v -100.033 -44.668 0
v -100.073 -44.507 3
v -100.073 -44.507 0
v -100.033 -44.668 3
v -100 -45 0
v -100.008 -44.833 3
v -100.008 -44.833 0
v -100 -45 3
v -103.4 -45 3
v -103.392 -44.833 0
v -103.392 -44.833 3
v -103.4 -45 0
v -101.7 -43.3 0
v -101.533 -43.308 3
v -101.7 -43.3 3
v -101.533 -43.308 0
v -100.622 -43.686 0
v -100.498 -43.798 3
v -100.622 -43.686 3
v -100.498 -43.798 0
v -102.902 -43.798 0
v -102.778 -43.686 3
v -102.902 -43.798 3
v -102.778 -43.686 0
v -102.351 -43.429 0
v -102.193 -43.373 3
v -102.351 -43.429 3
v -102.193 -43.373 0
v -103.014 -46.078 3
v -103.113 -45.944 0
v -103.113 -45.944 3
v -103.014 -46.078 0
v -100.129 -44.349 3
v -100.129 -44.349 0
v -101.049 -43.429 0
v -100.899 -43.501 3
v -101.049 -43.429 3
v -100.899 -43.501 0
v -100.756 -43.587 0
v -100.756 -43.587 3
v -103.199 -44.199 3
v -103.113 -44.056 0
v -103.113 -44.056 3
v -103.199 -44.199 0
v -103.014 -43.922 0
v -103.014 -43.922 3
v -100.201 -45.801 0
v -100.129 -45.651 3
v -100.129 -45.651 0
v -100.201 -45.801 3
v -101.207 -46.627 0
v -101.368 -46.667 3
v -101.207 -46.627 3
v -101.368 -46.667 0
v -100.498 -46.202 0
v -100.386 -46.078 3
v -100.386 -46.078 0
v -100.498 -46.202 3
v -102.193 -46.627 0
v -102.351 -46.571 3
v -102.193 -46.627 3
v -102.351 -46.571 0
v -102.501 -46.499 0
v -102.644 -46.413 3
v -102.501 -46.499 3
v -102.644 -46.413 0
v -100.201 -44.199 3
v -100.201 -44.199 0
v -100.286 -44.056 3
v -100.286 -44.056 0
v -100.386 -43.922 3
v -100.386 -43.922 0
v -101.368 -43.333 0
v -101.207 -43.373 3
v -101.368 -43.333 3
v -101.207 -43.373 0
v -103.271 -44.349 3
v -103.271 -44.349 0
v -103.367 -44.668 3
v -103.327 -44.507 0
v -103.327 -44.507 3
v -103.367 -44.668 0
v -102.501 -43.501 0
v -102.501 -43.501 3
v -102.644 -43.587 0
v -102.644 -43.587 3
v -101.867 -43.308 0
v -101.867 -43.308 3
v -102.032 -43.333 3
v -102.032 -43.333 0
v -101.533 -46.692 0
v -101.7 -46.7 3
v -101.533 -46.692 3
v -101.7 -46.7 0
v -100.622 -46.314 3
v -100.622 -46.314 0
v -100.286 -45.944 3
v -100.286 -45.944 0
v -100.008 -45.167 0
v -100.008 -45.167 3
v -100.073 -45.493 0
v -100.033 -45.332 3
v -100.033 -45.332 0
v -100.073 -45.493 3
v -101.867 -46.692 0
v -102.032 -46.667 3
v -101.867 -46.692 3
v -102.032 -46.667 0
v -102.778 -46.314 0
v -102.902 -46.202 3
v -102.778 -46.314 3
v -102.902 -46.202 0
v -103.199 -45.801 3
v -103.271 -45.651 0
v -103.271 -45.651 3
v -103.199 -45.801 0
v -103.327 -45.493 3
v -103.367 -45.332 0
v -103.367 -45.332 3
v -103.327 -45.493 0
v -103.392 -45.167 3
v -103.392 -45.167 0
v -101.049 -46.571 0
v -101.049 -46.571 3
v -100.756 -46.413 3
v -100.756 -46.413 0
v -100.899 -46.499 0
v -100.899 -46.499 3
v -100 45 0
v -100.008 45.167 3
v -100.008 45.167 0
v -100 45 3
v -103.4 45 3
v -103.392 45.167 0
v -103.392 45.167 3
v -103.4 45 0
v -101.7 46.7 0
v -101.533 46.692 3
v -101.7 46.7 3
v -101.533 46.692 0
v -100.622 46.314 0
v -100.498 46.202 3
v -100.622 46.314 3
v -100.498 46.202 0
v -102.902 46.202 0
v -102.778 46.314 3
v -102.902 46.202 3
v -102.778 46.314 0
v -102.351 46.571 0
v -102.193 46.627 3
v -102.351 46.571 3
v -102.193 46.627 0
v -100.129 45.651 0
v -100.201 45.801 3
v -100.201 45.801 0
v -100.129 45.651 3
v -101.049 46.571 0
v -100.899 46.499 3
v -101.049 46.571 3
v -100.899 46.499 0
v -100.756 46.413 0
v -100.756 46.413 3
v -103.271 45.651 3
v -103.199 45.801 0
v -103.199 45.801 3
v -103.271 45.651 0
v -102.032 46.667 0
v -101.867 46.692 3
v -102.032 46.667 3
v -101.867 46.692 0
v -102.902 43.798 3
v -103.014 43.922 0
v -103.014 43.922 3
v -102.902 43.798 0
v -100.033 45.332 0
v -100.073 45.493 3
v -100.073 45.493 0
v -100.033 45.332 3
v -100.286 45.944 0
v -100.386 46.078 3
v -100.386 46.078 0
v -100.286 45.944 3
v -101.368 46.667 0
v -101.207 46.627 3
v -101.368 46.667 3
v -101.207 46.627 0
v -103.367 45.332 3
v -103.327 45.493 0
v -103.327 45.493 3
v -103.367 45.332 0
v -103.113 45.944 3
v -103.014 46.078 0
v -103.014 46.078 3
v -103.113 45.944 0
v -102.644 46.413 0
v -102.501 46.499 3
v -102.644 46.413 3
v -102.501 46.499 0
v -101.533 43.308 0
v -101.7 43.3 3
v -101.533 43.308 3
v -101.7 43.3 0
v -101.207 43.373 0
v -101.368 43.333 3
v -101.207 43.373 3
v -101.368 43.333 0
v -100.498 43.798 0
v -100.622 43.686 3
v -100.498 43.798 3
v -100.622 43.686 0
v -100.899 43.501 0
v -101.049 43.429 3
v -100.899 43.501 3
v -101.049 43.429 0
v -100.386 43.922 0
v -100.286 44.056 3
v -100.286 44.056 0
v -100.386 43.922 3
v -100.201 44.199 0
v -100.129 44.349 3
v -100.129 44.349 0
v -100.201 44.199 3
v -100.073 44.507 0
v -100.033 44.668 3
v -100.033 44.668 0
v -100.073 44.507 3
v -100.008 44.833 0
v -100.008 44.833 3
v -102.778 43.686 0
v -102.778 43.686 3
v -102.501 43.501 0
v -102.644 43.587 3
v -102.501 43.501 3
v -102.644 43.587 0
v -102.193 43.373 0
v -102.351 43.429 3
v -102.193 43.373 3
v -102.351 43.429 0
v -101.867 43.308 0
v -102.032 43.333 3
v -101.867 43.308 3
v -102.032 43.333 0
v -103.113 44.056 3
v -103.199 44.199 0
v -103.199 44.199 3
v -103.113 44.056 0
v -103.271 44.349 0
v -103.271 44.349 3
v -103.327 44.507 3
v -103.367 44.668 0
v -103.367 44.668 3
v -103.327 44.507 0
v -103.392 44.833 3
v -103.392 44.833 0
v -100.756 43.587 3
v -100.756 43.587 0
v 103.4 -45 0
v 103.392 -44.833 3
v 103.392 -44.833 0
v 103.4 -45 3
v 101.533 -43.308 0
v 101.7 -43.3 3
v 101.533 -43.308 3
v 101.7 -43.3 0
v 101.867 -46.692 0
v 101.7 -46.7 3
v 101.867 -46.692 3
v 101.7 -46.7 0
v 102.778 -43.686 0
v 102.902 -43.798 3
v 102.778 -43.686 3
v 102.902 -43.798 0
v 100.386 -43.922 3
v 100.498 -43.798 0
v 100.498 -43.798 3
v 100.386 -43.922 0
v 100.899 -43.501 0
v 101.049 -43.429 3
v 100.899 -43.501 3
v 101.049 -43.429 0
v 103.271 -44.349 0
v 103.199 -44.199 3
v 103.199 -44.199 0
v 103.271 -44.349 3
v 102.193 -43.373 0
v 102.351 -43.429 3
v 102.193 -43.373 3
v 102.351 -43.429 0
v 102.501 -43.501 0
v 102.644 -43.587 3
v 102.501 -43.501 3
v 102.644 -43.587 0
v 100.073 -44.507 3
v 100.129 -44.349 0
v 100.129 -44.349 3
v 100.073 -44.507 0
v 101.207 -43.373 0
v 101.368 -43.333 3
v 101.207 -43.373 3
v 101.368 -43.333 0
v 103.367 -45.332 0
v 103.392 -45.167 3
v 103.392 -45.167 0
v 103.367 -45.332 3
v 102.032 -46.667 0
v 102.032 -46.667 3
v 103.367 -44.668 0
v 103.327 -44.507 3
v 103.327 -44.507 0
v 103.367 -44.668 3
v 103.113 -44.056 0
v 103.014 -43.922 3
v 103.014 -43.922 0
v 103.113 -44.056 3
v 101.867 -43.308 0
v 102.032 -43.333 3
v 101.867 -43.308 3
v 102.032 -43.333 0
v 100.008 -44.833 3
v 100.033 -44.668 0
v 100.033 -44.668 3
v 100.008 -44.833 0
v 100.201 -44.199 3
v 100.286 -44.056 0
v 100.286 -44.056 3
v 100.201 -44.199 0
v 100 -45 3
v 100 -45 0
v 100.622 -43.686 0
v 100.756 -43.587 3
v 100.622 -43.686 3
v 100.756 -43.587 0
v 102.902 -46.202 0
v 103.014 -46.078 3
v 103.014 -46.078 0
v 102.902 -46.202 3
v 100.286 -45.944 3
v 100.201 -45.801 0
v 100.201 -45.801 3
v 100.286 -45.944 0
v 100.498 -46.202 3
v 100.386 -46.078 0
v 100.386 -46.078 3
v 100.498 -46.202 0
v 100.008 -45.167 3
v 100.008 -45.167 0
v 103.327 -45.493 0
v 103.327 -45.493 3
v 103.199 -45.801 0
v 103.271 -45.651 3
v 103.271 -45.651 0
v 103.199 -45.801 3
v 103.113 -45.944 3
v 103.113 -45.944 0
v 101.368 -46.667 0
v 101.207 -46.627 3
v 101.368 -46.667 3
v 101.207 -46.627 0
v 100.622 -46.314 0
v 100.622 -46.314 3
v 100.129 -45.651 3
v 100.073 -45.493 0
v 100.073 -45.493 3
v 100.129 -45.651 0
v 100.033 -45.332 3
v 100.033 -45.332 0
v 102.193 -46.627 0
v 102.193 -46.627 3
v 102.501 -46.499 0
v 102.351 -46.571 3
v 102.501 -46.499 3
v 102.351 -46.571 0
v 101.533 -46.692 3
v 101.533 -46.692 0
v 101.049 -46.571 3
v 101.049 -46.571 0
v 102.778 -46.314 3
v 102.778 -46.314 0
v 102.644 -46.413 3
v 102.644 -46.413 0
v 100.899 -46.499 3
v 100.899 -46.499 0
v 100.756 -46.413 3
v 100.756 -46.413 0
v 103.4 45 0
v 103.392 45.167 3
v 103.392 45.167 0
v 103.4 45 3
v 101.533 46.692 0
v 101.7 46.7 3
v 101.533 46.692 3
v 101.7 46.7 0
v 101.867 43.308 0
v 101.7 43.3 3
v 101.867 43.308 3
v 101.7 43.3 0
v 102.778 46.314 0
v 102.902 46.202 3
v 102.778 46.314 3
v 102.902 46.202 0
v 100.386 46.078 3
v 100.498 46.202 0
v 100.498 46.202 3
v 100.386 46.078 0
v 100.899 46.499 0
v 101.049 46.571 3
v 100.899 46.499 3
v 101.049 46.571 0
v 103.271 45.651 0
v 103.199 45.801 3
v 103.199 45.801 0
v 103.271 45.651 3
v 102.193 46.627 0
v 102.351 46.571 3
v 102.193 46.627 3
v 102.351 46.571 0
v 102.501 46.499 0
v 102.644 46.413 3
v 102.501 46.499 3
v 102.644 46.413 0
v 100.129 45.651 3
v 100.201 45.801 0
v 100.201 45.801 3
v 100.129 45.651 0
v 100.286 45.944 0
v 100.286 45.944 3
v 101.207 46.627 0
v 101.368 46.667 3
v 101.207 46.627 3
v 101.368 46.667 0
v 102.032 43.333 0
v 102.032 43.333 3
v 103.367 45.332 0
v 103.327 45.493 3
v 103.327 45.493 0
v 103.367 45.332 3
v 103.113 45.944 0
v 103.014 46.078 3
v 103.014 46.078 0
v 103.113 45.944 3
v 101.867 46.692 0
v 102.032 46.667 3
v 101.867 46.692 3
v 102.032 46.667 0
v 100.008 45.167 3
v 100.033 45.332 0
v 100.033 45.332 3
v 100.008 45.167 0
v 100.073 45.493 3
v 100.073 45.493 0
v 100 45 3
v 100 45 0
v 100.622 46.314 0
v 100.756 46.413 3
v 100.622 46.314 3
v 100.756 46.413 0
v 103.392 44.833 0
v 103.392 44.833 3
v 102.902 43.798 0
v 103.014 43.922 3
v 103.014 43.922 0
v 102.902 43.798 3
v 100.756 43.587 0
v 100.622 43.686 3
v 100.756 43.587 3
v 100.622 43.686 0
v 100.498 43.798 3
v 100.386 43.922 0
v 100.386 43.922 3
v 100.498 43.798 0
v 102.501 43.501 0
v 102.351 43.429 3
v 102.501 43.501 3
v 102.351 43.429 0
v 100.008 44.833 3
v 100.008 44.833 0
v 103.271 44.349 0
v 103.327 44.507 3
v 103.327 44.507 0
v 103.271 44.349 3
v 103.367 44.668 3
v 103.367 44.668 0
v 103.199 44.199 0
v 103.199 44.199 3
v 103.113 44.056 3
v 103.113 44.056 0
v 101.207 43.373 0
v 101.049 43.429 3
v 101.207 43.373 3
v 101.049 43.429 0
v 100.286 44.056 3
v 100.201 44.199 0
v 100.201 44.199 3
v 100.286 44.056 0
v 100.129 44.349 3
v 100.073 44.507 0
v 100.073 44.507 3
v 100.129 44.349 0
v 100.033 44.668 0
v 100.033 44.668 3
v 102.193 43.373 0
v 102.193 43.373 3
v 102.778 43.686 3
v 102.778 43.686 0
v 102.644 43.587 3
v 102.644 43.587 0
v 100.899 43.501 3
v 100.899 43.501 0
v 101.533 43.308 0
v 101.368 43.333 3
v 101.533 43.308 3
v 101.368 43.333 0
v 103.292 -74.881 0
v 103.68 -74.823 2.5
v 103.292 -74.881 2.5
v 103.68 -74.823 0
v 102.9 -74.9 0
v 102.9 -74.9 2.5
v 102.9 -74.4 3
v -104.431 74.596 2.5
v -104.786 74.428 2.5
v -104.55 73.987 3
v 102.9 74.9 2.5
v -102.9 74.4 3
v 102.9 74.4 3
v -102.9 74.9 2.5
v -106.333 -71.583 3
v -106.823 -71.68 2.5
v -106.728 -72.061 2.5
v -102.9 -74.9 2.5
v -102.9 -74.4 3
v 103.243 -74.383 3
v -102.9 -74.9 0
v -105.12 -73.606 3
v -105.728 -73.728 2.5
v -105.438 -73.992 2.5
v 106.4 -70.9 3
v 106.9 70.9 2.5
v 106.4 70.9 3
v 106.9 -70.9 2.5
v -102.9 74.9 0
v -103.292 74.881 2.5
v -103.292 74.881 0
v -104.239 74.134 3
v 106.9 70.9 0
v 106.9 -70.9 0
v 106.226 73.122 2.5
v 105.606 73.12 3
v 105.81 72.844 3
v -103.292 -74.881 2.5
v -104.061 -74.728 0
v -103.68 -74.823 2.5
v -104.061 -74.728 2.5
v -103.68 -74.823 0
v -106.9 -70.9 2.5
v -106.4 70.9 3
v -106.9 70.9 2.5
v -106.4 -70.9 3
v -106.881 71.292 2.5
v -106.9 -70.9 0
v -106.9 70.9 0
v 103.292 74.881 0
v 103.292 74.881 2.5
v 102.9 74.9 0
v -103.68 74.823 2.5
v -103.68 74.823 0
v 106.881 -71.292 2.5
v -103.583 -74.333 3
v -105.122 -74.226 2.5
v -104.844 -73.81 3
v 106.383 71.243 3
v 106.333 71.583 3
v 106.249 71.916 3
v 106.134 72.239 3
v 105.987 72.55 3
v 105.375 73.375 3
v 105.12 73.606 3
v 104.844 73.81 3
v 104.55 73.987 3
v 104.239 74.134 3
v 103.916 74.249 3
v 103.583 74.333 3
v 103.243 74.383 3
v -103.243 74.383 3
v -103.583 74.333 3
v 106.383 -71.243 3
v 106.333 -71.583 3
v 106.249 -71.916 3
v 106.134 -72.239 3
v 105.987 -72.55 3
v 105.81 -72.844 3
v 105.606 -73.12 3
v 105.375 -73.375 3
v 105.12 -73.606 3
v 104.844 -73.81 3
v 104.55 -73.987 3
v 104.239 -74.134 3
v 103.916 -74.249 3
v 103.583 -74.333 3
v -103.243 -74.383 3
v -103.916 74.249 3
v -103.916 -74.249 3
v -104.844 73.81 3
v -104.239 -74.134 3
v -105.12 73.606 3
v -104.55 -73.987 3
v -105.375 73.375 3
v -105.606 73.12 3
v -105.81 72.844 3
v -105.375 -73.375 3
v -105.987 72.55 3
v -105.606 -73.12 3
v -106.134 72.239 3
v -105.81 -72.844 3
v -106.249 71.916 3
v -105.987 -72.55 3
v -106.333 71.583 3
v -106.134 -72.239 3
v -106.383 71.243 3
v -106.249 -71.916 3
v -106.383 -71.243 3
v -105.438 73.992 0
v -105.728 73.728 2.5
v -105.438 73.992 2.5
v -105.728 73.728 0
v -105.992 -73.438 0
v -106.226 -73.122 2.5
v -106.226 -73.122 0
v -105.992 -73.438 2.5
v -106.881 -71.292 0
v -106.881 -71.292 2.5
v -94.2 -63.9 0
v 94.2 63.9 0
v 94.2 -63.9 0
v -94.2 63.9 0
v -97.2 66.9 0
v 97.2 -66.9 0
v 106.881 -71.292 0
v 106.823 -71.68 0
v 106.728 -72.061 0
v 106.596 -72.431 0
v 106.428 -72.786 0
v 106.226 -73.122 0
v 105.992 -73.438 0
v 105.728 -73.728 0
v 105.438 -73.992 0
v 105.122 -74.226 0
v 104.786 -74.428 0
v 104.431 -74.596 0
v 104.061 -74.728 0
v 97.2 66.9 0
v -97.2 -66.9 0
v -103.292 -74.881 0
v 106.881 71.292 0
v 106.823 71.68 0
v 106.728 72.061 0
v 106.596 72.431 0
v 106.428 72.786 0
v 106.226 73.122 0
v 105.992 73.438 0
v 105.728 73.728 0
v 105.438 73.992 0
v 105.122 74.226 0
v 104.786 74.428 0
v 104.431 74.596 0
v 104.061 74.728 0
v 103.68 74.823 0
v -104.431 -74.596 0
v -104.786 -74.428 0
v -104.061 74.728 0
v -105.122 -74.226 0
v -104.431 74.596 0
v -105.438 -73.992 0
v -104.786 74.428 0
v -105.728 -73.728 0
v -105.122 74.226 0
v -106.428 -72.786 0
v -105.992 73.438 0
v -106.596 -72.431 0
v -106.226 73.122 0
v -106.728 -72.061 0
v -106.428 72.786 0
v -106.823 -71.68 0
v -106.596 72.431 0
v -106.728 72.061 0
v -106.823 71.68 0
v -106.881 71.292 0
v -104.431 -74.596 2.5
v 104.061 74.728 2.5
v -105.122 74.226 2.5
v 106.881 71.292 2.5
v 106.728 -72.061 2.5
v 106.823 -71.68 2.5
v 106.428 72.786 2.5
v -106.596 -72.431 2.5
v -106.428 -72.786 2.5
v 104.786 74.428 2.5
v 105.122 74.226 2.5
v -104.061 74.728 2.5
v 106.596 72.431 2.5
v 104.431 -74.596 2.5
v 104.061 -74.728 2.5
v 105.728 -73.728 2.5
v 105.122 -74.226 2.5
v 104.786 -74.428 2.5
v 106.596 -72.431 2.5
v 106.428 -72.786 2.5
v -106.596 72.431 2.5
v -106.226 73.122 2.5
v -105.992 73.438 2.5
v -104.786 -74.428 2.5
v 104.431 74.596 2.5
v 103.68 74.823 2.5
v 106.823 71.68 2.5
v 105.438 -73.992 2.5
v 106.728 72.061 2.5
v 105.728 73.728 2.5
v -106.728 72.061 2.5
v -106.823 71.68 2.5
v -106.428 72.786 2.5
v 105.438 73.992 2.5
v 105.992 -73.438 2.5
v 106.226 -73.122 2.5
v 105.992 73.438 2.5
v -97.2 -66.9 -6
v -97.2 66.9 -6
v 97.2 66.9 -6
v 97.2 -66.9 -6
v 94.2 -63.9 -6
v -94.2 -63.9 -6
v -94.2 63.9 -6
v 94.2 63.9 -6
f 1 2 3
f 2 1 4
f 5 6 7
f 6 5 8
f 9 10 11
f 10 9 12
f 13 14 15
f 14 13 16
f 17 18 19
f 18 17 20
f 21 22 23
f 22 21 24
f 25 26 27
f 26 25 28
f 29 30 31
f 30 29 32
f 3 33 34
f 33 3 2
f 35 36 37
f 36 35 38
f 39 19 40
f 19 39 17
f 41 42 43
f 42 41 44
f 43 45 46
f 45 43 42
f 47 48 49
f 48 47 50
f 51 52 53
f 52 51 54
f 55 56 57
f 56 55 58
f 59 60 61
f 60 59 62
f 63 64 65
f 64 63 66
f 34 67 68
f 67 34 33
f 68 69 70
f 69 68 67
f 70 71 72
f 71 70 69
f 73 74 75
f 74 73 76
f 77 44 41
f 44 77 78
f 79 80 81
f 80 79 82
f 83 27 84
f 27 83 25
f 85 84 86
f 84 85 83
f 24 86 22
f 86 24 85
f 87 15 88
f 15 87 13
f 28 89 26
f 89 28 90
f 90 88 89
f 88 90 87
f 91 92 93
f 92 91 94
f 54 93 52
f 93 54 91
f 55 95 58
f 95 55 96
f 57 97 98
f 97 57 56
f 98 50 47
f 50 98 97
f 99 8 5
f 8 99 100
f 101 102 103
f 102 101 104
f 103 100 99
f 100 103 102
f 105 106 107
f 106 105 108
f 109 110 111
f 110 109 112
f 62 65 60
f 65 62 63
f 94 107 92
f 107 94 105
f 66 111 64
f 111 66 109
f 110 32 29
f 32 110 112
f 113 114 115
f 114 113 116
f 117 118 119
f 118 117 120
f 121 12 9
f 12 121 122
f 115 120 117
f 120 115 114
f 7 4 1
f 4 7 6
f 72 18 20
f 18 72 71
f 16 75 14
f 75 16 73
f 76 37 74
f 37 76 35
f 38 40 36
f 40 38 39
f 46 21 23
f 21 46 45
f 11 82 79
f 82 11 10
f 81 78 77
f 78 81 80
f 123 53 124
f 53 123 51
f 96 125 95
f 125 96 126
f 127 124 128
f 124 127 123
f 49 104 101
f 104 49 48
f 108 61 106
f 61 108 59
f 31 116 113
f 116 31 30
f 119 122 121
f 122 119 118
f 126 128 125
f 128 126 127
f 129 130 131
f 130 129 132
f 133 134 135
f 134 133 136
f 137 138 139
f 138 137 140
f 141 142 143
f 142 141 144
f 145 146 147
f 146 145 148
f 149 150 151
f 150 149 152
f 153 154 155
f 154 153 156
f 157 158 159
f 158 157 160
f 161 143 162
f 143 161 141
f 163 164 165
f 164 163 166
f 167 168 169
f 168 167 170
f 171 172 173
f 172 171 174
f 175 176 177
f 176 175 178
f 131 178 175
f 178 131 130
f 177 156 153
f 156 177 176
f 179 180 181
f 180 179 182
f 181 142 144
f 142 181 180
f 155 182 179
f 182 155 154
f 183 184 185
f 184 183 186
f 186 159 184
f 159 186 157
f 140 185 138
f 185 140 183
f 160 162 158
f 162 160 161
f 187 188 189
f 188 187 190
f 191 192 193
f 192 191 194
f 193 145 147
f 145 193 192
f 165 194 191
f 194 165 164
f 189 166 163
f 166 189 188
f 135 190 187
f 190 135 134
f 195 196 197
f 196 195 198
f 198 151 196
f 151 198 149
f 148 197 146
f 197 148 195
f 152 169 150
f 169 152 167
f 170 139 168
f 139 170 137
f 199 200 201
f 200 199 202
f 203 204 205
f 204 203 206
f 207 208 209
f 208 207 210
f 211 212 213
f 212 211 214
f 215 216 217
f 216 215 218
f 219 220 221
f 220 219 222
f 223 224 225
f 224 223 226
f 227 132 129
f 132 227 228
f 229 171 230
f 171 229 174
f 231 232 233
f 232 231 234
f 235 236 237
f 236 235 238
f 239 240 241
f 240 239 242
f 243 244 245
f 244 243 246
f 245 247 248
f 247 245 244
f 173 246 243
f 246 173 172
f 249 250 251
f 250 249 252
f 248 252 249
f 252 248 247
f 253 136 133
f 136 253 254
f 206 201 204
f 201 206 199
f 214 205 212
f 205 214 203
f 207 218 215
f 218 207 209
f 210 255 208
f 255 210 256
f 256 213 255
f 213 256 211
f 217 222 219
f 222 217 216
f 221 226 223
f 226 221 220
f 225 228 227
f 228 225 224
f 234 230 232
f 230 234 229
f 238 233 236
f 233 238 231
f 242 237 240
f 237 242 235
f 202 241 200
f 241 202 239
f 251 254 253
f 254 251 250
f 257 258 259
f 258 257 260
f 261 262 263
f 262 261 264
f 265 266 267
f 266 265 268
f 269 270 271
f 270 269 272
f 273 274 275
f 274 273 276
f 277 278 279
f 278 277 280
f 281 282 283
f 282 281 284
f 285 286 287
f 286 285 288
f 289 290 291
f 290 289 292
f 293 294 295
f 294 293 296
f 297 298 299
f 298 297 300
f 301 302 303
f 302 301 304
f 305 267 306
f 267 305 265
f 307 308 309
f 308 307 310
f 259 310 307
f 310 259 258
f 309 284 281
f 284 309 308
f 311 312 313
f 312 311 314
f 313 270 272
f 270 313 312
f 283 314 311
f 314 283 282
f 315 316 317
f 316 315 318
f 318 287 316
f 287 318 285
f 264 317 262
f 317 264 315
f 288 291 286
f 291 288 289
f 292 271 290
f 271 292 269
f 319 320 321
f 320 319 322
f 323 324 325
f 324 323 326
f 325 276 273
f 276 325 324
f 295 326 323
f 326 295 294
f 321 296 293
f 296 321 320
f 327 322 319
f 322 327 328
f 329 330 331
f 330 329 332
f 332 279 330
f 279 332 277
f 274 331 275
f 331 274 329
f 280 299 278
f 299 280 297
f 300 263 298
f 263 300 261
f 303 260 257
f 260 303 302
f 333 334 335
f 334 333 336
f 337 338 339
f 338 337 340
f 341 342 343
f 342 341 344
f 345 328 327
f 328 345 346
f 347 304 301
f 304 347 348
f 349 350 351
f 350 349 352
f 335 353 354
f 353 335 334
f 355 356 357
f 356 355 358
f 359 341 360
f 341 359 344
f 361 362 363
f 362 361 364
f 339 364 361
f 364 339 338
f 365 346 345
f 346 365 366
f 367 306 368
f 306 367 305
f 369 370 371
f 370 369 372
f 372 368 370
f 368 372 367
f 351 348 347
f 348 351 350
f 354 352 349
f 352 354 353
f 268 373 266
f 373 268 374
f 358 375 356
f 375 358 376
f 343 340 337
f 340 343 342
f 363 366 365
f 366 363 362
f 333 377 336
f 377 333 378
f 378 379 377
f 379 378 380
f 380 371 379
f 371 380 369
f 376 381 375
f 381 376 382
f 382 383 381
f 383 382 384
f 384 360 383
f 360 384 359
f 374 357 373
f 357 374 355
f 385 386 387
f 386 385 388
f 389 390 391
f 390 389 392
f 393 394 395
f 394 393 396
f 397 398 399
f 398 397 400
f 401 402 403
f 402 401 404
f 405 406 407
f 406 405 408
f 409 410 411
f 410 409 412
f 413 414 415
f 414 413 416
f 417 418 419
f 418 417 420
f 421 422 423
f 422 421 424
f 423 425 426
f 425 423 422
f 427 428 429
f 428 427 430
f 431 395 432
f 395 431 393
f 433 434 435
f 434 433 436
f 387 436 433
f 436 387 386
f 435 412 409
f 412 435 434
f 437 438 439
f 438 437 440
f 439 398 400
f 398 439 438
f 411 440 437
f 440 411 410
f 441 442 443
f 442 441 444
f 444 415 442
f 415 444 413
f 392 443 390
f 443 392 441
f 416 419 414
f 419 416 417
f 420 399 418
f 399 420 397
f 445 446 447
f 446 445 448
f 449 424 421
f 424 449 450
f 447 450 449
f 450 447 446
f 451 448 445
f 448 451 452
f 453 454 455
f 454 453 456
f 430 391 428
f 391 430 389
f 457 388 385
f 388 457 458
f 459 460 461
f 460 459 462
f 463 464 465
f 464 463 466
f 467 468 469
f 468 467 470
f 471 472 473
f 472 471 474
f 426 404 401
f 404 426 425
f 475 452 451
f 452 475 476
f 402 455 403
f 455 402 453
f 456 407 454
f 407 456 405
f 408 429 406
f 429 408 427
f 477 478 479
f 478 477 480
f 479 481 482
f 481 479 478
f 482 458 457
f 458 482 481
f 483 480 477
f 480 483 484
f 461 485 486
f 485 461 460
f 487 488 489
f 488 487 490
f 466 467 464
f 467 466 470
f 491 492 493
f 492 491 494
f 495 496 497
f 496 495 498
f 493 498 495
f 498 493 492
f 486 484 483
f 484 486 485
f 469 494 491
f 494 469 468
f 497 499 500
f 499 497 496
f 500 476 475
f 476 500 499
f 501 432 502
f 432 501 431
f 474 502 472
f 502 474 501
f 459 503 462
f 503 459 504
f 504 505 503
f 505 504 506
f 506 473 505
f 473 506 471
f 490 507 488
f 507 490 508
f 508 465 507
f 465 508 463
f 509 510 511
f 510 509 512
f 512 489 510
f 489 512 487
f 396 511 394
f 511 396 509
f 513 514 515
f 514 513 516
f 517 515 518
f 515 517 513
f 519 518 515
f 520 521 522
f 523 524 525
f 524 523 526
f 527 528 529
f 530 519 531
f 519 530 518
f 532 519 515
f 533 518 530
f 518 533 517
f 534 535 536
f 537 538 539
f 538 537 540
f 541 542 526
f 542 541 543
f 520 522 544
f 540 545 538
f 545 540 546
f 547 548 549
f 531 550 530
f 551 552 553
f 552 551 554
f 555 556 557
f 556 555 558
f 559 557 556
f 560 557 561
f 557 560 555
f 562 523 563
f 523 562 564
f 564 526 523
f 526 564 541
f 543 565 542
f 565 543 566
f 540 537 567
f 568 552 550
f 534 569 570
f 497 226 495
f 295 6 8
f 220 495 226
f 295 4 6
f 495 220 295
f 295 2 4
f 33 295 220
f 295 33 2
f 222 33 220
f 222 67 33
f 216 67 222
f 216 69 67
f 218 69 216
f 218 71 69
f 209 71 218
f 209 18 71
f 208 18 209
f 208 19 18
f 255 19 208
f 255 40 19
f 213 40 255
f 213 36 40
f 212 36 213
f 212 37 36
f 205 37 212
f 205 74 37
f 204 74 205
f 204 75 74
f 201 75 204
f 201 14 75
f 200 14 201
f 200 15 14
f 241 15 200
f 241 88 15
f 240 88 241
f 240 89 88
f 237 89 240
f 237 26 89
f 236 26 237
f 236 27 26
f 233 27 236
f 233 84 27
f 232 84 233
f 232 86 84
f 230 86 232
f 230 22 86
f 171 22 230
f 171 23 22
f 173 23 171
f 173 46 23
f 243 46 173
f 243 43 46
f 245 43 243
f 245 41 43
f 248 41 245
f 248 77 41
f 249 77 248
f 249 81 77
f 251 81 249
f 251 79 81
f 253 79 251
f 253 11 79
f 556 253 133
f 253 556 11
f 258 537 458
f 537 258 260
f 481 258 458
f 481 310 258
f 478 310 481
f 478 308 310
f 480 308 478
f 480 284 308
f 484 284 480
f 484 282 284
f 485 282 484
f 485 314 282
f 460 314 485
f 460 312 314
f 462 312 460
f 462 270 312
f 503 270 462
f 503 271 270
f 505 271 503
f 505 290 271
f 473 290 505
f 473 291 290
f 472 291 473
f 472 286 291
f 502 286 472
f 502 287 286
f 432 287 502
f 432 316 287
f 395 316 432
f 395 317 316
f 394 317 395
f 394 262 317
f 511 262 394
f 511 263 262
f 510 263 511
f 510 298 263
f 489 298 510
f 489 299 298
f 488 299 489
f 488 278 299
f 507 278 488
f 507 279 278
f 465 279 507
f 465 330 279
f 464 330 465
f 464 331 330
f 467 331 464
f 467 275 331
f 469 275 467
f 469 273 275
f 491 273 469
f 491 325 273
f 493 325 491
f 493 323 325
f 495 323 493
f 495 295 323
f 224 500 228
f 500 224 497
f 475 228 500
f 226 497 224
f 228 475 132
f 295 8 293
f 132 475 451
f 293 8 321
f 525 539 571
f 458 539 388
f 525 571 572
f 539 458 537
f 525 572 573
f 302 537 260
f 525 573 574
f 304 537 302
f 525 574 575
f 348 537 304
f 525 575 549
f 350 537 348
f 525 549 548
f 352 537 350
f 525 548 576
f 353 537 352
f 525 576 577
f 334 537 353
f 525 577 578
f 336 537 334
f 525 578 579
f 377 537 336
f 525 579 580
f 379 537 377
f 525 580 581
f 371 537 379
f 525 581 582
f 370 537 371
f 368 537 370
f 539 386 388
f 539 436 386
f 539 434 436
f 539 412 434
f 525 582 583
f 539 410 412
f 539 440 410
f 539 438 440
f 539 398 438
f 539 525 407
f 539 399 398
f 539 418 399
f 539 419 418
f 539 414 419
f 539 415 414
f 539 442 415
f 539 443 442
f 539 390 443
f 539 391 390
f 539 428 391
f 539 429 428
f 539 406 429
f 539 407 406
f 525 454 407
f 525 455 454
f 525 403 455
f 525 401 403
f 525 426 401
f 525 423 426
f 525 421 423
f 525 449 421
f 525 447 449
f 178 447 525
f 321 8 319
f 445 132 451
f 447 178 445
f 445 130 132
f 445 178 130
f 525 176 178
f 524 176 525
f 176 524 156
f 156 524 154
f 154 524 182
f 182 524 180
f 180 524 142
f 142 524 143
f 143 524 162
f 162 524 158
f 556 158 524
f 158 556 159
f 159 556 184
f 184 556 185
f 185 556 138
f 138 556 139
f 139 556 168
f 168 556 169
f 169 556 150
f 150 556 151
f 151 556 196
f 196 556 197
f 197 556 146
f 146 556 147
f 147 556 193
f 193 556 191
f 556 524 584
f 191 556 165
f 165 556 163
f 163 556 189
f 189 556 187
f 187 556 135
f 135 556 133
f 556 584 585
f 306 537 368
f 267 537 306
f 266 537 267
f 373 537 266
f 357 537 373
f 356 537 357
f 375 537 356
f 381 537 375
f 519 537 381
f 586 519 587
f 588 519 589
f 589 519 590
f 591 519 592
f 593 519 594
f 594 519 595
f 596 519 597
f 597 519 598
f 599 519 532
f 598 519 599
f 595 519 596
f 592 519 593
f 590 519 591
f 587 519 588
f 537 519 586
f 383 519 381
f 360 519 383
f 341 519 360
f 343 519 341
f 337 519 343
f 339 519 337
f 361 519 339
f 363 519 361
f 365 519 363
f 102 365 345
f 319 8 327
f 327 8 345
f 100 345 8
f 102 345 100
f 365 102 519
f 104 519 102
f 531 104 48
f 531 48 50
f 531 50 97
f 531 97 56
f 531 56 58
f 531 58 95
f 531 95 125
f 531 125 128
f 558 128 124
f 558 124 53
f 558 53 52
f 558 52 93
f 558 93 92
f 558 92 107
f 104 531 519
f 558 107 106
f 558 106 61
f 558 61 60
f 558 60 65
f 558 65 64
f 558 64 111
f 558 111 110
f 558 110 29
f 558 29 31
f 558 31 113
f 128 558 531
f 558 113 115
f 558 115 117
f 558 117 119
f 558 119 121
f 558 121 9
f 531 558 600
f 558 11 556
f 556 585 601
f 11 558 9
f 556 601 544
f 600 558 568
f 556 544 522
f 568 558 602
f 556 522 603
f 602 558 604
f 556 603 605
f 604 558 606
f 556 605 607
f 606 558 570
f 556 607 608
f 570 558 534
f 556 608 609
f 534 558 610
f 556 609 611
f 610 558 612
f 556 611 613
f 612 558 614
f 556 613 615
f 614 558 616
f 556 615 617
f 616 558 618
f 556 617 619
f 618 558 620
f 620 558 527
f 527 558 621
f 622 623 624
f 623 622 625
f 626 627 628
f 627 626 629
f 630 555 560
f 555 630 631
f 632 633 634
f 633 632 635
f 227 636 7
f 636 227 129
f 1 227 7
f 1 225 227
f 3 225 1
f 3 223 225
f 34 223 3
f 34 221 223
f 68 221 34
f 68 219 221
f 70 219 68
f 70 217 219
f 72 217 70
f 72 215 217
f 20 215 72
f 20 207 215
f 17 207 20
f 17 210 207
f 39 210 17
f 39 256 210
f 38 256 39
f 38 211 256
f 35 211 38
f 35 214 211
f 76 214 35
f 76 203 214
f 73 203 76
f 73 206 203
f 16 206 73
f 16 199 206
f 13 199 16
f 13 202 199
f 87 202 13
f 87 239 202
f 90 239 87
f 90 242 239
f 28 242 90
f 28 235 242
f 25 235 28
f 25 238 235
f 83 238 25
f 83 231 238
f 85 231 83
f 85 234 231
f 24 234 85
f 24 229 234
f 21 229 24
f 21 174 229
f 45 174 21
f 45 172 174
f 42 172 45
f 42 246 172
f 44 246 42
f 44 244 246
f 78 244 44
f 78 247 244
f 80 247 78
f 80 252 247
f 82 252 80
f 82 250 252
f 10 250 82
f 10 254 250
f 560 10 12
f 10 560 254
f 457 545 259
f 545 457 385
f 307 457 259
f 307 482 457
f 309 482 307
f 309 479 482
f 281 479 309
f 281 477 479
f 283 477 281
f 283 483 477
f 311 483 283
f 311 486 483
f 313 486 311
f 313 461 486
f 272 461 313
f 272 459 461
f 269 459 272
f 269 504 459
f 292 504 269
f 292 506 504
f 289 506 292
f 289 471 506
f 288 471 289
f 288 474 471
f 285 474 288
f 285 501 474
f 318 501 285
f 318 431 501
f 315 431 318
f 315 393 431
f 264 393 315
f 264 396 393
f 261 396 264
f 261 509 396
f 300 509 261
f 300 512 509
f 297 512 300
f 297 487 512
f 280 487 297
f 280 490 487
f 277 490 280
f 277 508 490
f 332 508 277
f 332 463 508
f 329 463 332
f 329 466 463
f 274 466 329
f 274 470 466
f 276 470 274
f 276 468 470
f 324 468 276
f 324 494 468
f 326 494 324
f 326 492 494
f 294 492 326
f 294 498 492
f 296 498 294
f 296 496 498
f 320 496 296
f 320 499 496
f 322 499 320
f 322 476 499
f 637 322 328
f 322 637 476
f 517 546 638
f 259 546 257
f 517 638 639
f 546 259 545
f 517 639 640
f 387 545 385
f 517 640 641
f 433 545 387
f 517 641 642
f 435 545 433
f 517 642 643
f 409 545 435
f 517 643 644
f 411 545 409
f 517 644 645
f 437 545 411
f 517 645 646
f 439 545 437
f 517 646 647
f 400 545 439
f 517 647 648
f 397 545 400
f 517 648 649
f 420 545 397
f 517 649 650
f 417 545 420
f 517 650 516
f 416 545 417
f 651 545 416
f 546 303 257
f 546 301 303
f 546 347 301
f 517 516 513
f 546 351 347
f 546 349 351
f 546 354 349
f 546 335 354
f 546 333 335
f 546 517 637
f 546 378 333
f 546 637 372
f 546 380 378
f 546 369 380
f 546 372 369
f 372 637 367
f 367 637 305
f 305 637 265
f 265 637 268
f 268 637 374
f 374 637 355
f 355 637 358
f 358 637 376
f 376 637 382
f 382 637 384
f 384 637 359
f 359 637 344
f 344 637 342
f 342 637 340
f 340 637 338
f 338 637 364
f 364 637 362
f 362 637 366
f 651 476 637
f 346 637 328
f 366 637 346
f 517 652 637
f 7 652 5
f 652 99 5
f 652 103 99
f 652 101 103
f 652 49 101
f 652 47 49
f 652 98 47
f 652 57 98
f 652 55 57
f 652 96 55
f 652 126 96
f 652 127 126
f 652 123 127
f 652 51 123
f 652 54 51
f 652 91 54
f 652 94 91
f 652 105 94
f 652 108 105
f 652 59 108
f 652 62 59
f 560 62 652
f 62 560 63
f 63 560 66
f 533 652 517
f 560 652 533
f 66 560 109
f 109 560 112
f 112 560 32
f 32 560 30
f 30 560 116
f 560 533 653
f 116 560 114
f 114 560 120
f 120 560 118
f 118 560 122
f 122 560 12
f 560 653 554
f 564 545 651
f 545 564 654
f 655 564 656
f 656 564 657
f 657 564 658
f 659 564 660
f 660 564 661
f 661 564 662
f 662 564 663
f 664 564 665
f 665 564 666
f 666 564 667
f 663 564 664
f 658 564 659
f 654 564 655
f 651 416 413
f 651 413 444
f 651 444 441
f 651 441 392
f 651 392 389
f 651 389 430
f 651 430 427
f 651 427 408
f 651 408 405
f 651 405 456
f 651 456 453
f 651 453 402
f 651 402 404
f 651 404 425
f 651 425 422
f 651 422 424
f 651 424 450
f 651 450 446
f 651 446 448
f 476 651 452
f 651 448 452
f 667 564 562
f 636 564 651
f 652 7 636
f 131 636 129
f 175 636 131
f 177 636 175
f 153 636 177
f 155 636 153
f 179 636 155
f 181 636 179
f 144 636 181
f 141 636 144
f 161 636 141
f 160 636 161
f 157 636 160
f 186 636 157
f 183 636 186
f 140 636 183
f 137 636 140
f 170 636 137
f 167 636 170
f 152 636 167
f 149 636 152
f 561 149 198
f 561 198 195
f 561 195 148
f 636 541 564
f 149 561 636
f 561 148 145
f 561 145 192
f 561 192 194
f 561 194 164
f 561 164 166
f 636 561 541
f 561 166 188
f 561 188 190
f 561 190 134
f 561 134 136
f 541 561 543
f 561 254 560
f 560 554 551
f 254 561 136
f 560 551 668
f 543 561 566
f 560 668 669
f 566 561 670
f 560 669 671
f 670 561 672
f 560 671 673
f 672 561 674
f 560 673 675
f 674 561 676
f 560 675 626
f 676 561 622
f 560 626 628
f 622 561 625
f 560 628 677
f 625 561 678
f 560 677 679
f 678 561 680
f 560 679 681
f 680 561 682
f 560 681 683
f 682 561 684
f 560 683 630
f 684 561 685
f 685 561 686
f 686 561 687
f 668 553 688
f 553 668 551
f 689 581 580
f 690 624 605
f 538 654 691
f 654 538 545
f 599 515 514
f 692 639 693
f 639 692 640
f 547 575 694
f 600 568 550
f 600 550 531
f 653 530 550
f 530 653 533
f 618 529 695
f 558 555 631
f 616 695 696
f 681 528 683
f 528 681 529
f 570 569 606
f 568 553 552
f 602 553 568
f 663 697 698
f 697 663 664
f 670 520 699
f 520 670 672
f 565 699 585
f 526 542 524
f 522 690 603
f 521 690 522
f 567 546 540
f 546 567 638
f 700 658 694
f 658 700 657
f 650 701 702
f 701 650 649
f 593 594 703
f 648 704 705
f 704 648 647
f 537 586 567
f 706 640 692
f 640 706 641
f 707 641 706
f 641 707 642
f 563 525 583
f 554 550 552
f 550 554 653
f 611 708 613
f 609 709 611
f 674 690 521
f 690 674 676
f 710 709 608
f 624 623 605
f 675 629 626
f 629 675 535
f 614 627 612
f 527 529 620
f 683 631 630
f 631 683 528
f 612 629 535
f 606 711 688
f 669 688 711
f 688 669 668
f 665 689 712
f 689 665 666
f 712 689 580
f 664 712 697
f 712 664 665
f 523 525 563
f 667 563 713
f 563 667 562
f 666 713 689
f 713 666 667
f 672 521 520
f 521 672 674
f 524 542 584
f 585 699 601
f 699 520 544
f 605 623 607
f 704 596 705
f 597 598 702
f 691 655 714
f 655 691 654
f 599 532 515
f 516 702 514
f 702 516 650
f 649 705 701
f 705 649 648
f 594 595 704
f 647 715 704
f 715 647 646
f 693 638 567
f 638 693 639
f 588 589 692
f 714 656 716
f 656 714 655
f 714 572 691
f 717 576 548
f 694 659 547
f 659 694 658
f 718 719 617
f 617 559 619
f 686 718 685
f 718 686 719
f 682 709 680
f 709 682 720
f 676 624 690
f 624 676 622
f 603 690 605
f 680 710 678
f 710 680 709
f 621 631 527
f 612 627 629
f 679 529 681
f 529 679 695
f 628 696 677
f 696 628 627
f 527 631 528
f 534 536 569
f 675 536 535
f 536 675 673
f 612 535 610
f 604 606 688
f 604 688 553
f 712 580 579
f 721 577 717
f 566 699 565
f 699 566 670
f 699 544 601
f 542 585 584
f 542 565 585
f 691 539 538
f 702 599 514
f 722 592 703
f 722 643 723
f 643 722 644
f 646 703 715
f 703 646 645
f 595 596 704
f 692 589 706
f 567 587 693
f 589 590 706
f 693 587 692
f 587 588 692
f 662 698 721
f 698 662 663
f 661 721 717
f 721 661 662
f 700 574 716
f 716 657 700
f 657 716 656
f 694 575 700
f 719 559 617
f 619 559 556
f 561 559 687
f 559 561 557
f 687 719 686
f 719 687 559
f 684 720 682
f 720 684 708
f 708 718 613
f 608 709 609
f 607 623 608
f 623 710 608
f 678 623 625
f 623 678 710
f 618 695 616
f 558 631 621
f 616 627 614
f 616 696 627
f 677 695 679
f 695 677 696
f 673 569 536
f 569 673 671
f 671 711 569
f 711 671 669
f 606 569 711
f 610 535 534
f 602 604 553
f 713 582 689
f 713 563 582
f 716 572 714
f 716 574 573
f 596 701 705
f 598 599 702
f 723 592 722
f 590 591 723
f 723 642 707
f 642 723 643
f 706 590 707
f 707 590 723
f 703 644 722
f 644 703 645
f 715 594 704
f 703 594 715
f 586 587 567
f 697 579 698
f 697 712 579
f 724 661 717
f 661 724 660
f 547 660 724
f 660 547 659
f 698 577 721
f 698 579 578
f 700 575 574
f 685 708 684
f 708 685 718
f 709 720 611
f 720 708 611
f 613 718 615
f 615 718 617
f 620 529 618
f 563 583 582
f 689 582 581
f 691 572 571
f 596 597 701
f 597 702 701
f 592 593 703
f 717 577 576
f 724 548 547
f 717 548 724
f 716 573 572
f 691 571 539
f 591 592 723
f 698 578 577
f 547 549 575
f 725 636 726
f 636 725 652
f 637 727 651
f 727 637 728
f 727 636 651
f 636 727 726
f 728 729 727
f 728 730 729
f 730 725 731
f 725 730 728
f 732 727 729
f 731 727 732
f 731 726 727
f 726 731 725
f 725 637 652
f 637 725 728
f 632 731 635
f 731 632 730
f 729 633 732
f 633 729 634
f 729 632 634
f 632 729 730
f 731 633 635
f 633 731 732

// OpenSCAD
// Apache 2800 Blank Plate
// Copyright (c) 2026 William Chrapcynski
// Licensed under CC BY-NC-SA 4.0
// https://creativecommons.org/licenses/by-nc-sa/4.0/

/* [Plate] */
// Plate length (X)
plate_length = 213.8;
// Plate width (Y)
plate_width = 149.8;
// Plate thickness
plate_thickness = 3;
// Corner radius
plate_corner_radius = 4;
// Plate Chamfer
plate_chamfer = 0.5;

/* [Ribs] */
// Rib Length (X)
rib_length = 194.4;
// Rib Width (Y)
rib_width = 133.8;
// Rib Depth
rib_depth = 6;
// Rib Wall Thickness
rib_wall_thickness = 3;

/* [Screws - This is position for first screw at the top right] */
// Screw Position (X)
screw_position_x = 101.7;
// Screw Position (Y)
screw_position_y = 45;
// Screw Hole Diameter
screw_hole_diameter = 3.4;
// Enable Countersink
enable_countersink = false;
// Countersink Diameter
countersink_diameter = 6.2;
// Countersink Depth
countersink_depth = (countersink_diameter - screw_hole_diameter) / 2;

/* [Misc] */
// Rounding segments - For calculating purposes only
$fn = 64;

// Create Plate
difference() {
    hull() {
        linear_extrude(height = plate_thickness - plate_chamfer) 
            offset(r = plate_corner_radius) 
                square([plate_length - (plate_corner_radius * 2), plate_width - (plate_corner_radius * 2)], center = true);
        linear_extrude(height = plate_thickness) 
            offset(r = plate_corner_radius - plate_chamfer) 
                square([plate_length - (plate_corner_radius * 2), plate_width - (plate_corner_radius * 2)], center = true);
    }
    for(sx = [-1, 1], sy = [-1, 1]) 
        translate([screw_position_x * sx, screw_position_y * sy, 0]) {
            translate([0, 0, -1]) 
                cylinder(d = screw_hole_diameter, h = plate_thickness + 2);
            if(enable_countersink) 
                translate([0, 0, plate_thickness - countersink_depth]) 
                    cylinder(h = countersink_depth + 1, d1 = screw_hole_diameter, d2 = countersink_diameter + 2);
        }
}

// Create Framing Ribs
difference() {
    translate([0, 0, -rib_depth / 2]) 
        cube([rib_length, rib_width, rib_depth], center = true);
    translate([0, 0, -rib_depth / 2]) 
        cube([rib_length - (2 * rib_wall_thickness), rib_width - (2 * rib_wall_thickness), rib_depth + 2], center = true);
}
